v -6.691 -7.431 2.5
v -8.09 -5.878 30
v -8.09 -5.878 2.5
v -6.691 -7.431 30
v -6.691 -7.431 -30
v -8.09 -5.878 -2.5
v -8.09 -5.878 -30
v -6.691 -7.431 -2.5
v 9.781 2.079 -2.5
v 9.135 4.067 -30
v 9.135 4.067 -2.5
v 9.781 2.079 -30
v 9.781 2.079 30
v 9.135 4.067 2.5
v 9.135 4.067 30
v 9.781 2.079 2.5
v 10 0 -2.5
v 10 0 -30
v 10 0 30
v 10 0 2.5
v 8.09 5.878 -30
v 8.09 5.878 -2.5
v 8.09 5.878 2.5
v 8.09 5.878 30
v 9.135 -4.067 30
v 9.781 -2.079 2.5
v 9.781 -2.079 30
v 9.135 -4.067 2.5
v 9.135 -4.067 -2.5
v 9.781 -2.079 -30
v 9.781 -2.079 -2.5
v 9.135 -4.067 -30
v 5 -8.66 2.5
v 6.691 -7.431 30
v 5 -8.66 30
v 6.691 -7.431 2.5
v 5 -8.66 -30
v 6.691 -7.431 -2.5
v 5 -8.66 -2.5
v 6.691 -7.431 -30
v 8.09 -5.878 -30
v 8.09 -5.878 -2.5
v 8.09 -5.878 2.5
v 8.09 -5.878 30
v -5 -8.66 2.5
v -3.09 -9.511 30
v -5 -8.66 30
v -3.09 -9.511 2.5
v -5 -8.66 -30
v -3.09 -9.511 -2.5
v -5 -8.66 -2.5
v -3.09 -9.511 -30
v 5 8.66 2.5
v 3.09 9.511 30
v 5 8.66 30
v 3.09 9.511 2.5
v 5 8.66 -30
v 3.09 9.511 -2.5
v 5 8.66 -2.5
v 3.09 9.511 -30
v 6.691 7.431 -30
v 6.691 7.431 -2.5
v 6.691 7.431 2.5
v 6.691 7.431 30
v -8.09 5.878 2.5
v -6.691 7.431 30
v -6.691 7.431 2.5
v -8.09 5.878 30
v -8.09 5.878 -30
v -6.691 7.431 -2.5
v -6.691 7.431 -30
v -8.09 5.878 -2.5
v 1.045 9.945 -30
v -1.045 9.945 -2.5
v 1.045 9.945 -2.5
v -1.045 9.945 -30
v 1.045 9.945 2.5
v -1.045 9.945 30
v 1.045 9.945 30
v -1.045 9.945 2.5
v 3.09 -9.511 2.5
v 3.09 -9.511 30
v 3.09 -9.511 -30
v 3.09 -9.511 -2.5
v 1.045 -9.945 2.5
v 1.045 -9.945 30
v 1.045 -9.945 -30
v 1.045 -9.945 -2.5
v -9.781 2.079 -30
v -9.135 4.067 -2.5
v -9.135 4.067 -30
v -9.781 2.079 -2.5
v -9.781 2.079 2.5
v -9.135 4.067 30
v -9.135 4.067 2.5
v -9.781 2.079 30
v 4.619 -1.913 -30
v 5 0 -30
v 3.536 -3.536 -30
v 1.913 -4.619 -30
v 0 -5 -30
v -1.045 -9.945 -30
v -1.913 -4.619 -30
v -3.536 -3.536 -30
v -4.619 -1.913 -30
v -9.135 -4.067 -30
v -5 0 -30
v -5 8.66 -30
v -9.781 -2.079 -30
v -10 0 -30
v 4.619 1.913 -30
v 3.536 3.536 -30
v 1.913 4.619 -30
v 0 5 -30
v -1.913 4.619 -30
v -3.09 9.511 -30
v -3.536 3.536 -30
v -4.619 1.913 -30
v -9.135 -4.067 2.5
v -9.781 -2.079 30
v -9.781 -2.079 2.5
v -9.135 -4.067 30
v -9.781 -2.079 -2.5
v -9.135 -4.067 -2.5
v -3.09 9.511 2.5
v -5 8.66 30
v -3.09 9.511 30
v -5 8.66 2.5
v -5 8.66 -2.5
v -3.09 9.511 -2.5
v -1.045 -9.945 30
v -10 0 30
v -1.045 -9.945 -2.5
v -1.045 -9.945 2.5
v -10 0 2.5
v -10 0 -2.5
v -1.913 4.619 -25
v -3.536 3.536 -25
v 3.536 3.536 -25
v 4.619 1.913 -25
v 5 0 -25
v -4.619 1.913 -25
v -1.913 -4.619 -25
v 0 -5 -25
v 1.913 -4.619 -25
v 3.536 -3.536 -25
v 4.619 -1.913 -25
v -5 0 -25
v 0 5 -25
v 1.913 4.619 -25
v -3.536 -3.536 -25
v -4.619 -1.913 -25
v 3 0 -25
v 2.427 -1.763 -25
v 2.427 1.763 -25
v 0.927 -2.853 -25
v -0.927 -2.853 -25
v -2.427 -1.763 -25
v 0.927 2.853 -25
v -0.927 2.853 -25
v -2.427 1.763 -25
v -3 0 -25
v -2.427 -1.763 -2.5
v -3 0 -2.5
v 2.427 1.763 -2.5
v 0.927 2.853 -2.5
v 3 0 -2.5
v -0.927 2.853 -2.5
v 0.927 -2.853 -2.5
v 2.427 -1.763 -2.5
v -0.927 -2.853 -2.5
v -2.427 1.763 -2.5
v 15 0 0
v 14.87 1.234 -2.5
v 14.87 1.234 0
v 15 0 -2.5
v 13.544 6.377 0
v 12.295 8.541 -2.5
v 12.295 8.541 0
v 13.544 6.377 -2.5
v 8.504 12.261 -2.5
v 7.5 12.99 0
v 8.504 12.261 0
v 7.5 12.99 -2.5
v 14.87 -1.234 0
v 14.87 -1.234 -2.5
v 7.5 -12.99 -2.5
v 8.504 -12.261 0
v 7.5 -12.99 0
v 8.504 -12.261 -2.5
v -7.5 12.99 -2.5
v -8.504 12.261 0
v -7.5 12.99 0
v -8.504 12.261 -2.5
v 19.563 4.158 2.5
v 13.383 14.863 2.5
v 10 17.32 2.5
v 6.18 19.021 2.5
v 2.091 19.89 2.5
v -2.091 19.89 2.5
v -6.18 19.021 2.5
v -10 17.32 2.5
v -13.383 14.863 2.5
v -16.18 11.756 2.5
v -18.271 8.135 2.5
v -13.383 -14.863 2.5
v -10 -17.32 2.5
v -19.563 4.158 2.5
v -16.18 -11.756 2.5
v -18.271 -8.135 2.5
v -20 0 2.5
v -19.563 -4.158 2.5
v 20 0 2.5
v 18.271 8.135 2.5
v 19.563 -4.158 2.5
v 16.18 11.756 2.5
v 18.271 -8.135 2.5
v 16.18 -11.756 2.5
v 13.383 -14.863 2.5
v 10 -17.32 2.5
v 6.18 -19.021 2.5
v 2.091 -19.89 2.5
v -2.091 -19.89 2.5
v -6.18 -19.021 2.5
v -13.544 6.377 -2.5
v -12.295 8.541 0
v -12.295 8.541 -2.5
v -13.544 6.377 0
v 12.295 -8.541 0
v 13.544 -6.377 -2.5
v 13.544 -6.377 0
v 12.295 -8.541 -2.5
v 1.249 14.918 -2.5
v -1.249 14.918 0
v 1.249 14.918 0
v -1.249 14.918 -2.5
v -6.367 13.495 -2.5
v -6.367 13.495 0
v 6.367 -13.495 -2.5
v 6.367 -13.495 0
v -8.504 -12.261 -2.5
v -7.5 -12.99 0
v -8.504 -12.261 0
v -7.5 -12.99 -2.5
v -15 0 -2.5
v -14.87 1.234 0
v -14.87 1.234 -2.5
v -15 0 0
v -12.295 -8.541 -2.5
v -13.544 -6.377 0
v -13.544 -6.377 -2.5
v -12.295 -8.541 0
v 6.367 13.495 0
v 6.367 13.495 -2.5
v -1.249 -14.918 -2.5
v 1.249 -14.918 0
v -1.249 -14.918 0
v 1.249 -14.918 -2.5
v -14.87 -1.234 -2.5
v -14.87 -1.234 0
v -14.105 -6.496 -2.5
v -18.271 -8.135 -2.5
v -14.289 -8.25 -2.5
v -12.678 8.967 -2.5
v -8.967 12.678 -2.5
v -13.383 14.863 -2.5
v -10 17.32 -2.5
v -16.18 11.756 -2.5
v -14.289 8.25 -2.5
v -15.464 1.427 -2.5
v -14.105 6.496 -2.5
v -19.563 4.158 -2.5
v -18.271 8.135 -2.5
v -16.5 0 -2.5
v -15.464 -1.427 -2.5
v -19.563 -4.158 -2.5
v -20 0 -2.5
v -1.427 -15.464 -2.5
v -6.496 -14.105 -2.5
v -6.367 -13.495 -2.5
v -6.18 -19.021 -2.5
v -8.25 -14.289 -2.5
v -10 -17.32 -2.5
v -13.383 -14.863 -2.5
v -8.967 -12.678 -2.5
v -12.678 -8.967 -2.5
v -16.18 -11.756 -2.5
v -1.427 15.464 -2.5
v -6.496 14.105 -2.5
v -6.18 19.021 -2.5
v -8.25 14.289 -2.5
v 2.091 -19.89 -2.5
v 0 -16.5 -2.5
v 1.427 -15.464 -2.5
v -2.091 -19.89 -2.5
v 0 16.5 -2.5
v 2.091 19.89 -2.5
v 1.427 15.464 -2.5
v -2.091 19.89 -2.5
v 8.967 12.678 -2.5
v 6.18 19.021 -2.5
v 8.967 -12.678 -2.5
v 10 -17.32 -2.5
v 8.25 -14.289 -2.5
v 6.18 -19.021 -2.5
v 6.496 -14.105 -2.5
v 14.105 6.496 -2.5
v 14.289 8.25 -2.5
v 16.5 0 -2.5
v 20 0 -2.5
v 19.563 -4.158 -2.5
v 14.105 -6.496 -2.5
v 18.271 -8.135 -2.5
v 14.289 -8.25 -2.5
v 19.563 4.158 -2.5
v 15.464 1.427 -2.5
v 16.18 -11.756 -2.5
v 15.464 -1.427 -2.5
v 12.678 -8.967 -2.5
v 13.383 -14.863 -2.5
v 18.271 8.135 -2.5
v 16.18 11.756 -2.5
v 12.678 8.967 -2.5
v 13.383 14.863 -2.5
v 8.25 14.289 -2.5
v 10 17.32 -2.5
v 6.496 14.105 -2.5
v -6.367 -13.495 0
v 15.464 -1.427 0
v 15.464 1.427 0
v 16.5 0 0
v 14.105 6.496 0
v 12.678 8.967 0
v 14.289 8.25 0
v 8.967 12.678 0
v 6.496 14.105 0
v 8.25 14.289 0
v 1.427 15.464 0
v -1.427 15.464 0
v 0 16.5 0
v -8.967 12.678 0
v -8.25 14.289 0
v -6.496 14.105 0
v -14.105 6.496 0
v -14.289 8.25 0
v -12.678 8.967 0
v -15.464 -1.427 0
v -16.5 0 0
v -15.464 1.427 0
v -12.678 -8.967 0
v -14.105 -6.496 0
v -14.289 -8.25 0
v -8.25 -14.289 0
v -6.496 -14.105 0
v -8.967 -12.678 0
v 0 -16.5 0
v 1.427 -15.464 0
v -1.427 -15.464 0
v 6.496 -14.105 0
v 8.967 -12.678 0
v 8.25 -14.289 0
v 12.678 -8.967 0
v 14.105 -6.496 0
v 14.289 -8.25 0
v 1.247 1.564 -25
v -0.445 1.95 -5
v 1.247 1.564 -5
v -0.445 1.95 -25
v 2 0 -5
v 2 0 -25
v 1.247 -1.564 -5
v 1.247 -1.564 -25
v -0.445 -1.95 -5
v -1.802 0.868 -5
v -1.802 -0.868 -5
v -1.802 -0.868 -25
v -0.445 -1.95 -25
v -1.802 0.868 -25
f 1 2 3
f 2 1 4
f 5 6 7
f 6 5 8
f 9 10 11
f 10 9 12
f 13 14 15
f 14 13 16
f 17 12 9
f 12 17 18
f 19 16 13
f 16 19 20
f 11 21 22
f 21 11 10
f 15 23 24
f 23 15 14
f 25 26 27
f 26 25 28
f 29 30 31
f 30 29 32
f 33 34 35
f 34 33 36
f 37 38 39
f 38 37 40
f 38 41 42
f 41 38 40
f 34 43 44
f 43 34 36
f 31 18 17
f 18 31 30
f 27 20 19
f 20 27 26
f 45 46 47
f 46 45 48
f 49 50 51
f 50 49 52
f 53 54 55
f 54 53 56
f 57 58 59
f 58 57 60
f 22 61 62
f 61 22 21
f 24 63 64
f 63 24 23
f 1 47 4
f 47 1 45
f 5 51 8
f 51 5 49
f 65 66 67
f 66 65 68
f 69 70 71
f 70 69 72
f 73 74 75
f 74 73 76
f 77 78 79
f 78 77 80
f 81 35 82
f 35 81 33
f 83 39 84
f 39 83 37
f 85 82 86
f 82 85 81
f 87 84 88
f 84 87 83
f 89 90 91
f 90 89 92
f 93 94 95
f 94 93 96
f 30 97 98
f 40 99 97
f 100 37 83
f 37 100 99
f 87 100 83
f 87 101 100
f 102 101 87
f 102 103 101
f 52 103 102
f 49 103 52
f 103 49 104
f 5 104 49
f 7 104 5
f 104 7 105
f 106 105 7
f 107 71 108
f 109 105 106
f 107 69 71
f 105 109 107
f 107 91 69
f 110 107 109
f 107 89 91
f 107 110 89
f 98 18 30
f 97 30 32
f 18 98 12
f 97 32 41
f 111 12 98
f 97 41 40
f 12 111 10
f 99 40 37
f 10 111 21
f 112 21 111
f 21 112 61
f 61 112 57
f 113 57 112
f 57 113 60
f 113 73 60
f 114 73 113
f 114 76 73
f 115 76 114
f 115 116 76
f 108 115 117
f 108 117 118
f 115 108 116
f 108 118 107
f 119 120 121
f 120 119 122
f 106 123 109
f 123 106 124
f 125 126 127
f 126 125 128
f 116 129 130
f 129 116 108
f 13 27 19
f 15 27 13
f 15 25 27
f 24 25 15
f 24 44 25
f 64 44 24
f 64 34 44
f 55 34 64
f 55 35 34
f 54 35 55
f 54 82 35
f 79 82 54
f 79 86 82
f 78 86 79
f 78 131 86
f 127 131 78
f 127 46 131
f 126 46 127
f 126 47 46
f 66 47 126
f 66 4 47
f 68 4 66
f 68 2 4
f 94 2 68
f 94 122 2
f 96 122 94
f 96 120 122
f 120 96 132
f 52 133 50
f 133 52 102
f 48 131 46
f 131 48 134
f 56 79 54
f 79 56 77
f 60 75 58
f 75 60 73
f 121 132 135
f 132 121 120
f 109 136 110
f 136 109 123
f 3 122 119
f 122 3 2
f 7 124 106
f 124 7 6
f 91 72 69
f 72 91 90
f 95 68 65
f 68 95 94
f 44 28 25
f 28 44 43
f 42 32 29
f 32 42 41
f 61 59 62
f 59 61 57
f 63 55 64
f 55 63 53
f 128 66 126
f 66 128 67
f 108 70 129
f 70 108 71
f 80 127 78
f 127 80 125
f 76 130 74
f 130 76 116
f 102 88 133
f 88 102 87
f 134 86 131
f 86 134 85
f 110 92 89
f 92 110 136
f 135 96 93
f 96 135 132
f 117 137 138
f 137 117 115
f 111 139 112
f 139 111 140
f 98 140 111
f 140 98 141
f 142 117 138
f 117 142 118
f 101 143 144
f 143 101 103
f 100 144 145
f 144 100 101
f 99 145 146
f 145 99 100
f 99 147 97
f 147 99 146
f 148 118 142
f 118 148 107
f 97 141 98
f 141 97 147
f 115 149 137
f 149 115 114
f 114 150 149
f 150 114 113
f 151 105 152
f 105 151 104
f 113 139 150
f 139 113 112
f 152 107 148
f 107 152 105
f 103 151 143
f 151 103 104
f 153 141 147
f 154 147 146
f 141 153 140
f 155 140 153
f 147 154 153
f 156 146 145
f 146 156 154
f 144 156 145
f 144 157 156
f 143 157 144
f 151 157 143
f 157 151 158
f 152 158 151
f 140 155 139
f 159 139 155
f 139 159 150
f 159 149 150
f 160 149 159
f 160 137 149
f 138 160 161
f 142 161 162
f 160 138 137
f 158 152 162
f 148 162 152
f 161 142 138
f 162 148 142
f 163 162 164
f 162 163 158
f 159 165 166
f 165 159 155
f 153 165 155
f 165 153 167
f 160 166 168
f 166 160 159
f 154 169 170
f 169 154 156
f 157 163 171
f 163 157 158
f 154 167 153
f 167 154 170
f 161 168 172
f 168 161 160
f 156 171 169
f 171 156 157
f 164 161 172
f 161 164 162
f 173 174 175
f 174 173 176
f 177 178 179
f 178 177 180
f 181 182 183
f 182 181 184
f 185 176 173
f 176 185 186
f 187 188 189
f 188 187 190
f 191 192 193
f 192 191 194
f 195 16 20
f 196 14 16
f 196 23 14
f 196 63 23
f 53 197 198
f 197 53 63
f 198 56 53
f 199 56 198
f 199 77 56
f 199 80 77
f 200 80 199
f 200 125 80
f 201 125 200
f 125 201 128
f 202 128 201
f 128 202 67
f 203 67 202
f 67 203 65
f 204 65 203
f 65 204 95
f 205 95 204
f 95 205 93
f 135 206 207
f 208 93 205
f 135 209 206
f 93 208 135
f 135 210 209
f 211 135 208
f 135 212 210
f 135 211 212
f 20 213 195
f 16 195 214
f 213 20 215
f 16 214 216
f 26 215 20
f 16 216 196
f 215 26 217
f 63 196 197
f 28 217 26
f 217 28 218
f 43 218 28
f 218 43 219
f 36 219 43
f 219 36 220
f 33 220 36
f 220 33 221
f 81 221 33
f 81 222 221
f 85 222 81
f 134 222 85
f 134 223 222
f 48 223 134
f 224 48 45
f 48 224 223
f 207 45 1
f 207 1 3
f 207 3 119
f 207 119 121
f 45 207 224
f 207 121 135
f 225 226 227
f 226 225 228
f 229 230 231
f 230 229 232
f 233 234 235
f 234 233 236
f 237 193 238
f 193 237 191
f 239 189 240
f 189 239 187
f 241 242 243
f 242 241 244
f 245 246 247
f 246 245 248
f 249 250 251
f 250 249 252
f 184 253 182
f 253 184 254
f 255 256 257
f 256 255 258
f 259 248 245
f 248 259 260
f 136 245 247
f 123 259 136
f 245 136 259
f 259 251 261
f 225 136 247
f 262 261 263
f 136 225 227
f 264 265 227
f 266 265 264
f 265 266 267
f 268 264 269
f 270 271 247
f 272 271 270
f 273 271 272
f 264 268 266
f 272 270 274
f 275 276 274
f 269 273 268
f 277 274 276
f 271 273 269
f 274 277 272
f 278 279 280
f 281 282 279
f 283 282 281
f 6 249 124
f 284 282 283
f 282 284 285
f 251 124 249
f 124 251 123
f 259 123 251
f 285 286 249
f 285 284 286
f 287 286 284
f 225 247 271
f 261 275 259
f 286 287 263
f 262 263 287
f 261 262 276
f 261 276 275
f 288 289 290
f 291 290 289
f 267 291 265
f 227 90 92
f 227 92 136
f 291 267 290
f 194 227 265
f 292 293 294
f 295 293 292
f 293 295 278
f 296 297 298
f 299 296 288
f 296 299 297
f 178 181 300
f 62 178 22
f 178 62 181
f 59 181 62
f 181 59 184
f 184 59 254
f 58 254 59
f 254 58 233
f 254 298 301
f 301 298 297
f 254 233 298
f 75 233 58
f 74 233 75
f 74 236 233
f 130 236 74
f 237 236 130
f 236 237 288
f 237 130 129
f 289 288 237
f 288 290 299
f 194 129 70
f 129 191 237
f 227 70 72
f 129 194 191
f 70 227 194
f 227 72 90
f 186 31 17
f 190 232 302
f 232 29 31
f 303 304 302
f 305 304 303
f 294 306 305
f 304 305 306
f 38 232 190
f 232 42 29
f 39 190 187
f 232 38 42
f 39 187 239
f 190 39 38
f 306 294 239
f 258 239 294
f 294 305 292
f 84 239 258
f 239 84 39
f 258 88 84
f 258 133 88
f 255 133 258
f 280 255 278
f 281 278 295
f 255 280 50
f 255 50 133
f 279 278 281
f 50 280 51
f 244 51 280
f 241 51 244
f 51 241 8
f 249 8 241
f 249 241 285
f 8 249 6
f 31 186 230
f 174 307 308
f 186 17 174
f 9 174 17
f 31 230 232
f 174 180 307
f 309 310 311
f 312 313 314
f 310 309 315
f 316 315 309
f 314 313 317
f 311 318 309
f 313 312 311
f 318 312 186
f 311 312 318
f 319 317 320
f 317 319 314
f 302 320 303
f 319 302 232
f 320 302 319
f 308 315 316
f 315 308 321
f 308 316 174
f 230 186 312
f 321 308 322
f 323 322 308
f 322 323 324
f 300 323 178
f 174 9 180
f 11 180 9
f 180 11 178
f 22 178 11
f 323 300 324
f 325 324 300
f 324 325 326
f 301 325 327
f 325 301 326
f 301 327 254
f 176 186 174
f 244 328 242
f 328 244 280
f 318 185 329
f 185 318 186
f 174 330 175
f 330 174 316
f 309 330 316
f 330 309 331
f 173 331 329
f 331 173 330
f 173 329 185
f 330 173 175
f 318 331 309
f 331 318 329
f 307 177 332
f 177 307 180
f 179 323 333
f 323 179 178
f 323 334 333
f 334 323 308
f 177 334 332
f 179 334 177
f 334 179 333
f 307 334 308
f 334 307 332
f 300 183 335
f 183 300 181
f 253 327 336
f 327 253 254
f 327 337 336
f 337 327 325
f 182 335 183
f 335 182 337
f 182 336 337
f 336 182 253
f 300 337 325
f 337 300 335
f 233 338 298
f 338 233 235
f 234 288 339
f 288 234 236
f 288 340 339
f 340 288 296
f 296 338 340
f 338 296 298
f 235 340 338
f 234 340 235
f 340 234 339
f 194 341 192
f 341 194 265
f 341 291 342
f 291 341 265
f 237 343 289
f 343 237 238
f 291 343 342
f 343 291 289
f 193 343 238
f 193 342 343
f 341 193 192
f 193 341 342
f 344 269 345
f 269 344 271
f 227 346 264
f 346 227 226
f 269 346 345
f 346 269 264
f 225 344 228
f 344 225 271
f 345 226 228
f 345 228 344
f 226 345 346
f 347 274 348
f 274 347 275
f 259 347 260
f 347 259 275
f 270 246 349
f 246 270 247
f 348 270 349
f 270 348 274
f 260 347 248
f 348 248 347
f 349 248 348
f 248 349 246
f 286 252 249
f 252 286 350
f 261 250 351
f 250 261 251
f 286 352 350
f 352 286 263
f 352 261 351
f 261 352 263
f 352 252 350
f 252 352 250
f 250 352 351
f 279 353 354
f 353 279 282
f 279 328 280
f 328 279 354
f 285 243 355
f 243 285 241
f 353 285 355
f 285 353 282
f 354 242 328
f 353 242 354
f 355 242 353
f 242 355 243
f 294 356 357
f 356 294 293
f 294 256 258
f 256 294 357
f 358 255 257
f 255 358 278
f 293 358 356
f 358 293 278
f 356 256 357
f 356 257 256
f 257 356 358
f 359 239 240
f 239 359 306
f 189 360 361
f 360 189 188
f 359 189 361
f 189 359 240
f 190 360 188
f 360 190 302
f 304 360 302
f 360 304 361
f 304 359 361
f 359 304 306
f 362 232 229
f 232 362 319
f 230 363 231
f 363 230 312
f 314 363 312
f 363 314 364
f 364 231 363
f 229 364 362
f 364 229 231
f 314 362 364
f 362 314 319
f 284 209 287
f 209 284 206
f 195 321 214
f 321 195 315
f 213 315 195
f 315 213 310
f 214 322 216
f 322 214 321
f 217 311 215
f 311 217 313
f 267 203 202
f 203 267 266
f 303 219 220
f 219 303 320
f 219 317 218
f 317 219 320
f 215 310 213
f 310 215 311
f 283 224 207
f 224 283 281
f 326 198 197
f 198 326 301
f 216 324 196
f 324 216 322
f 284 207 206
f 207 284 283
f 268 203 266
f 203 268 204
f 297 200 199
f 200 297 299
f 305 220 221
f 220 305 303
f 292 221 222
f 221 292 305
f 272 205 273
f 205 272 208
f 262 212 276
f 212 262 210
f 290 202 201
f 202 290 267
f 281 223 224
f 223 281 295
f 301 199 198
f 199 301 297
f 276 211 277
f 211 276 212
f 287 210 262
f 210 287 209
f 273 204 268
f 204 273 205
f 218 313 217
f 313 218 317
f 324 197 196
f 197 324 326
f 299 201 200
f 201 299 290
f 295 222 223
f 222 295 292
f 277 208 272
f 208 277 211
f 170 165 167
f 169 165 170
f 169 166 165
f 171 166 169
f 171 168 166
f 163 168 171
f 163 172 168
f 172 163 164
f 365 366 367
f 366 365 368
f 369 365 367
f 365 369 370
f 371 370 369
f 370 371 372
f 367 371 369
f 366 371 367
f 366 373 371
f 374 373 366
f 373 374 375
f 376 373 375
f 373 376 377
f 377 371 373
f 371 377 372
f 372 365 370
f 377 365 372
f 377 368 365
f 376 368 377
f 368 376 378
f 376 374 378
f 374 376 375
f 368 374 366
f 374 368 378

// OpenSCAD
// Central Shaft
module central_shaft() {
    difference() {
        // Outer cylinder - Adjusted to have a uniform cylindrical shape
        cylinder(h = 60, r = 10, center = true);
        // Inner hollow
        translate([0, 0, -30])
            cylinder(h = 60, r = 5, center = true);
    }
}

// Input Shaft
module input_shaft() {
    difference() {
        // Outer cylinder - Adjusted to have a uniform cylindrical shape
        cylinder(h = 40, r = 8, center = true);
        // Inner hollow
        translate([0, 0, -20])
            cylinder(h = 40, r = 4.5, center = true);
    }
}

// Output Shaft
module output_shaft() {
    difference() {
        // Outer cylinder - Adjusted to have a uniform cylindrical shape
        cylinder(h = 50, r = 7, center = true);
        // Inner hollow
        translate([0, 0, -25])
            cylinder(h = 50, r = 3, center = true); // Added hollow center
    }
}

// Spacer Ring
module spacer_ring() {
    difference() {
        // Outer ring
        cylinder(h = 5, r = 15, center = true);
        // Inner hollow
        translate([0, 0, -2.5])
            cylinder(h = 5, r = 10, center = true);
    }
}

// Flange Plate
module flange_plate() {
    difference() {
        // Plate
        cylinder(h = 5, r = 20, center = true);
        // Central hole
        translate([0, 0, -2.5])
            cylinder(h = 5, r = 5, center = true);
        // Bolt holes
        for (i = [0:30:330]) {
            rotate([0, 0, i])
                translate([15, 0, -2.5])
                    cylinder(h = 5, r = 1.5, center = true);
        }
    }
}

// Nut
module nut() {
    difference() {
        // Outer hexagonal shape
        cylinder(h = 5, r = 6, center = true);
        // Inner threaded hollow
        translate([0, 0, -2.5])
            cylinder(h = 5, r = 3, center = true);
    }
}

// Bolt
module bolt() {
    union() {
        // Head
        cylinder(h = 5, r = 4, center = true);
        // Threaded end
        translate([0, 0, -15])
            cylinder(h = 20, r = 2, center = true);
    }
}

// Render the components
central_shaft();
input_shaft();
output_shaft();
spacer_ring();
flange_plate();
nut();
bolt();
